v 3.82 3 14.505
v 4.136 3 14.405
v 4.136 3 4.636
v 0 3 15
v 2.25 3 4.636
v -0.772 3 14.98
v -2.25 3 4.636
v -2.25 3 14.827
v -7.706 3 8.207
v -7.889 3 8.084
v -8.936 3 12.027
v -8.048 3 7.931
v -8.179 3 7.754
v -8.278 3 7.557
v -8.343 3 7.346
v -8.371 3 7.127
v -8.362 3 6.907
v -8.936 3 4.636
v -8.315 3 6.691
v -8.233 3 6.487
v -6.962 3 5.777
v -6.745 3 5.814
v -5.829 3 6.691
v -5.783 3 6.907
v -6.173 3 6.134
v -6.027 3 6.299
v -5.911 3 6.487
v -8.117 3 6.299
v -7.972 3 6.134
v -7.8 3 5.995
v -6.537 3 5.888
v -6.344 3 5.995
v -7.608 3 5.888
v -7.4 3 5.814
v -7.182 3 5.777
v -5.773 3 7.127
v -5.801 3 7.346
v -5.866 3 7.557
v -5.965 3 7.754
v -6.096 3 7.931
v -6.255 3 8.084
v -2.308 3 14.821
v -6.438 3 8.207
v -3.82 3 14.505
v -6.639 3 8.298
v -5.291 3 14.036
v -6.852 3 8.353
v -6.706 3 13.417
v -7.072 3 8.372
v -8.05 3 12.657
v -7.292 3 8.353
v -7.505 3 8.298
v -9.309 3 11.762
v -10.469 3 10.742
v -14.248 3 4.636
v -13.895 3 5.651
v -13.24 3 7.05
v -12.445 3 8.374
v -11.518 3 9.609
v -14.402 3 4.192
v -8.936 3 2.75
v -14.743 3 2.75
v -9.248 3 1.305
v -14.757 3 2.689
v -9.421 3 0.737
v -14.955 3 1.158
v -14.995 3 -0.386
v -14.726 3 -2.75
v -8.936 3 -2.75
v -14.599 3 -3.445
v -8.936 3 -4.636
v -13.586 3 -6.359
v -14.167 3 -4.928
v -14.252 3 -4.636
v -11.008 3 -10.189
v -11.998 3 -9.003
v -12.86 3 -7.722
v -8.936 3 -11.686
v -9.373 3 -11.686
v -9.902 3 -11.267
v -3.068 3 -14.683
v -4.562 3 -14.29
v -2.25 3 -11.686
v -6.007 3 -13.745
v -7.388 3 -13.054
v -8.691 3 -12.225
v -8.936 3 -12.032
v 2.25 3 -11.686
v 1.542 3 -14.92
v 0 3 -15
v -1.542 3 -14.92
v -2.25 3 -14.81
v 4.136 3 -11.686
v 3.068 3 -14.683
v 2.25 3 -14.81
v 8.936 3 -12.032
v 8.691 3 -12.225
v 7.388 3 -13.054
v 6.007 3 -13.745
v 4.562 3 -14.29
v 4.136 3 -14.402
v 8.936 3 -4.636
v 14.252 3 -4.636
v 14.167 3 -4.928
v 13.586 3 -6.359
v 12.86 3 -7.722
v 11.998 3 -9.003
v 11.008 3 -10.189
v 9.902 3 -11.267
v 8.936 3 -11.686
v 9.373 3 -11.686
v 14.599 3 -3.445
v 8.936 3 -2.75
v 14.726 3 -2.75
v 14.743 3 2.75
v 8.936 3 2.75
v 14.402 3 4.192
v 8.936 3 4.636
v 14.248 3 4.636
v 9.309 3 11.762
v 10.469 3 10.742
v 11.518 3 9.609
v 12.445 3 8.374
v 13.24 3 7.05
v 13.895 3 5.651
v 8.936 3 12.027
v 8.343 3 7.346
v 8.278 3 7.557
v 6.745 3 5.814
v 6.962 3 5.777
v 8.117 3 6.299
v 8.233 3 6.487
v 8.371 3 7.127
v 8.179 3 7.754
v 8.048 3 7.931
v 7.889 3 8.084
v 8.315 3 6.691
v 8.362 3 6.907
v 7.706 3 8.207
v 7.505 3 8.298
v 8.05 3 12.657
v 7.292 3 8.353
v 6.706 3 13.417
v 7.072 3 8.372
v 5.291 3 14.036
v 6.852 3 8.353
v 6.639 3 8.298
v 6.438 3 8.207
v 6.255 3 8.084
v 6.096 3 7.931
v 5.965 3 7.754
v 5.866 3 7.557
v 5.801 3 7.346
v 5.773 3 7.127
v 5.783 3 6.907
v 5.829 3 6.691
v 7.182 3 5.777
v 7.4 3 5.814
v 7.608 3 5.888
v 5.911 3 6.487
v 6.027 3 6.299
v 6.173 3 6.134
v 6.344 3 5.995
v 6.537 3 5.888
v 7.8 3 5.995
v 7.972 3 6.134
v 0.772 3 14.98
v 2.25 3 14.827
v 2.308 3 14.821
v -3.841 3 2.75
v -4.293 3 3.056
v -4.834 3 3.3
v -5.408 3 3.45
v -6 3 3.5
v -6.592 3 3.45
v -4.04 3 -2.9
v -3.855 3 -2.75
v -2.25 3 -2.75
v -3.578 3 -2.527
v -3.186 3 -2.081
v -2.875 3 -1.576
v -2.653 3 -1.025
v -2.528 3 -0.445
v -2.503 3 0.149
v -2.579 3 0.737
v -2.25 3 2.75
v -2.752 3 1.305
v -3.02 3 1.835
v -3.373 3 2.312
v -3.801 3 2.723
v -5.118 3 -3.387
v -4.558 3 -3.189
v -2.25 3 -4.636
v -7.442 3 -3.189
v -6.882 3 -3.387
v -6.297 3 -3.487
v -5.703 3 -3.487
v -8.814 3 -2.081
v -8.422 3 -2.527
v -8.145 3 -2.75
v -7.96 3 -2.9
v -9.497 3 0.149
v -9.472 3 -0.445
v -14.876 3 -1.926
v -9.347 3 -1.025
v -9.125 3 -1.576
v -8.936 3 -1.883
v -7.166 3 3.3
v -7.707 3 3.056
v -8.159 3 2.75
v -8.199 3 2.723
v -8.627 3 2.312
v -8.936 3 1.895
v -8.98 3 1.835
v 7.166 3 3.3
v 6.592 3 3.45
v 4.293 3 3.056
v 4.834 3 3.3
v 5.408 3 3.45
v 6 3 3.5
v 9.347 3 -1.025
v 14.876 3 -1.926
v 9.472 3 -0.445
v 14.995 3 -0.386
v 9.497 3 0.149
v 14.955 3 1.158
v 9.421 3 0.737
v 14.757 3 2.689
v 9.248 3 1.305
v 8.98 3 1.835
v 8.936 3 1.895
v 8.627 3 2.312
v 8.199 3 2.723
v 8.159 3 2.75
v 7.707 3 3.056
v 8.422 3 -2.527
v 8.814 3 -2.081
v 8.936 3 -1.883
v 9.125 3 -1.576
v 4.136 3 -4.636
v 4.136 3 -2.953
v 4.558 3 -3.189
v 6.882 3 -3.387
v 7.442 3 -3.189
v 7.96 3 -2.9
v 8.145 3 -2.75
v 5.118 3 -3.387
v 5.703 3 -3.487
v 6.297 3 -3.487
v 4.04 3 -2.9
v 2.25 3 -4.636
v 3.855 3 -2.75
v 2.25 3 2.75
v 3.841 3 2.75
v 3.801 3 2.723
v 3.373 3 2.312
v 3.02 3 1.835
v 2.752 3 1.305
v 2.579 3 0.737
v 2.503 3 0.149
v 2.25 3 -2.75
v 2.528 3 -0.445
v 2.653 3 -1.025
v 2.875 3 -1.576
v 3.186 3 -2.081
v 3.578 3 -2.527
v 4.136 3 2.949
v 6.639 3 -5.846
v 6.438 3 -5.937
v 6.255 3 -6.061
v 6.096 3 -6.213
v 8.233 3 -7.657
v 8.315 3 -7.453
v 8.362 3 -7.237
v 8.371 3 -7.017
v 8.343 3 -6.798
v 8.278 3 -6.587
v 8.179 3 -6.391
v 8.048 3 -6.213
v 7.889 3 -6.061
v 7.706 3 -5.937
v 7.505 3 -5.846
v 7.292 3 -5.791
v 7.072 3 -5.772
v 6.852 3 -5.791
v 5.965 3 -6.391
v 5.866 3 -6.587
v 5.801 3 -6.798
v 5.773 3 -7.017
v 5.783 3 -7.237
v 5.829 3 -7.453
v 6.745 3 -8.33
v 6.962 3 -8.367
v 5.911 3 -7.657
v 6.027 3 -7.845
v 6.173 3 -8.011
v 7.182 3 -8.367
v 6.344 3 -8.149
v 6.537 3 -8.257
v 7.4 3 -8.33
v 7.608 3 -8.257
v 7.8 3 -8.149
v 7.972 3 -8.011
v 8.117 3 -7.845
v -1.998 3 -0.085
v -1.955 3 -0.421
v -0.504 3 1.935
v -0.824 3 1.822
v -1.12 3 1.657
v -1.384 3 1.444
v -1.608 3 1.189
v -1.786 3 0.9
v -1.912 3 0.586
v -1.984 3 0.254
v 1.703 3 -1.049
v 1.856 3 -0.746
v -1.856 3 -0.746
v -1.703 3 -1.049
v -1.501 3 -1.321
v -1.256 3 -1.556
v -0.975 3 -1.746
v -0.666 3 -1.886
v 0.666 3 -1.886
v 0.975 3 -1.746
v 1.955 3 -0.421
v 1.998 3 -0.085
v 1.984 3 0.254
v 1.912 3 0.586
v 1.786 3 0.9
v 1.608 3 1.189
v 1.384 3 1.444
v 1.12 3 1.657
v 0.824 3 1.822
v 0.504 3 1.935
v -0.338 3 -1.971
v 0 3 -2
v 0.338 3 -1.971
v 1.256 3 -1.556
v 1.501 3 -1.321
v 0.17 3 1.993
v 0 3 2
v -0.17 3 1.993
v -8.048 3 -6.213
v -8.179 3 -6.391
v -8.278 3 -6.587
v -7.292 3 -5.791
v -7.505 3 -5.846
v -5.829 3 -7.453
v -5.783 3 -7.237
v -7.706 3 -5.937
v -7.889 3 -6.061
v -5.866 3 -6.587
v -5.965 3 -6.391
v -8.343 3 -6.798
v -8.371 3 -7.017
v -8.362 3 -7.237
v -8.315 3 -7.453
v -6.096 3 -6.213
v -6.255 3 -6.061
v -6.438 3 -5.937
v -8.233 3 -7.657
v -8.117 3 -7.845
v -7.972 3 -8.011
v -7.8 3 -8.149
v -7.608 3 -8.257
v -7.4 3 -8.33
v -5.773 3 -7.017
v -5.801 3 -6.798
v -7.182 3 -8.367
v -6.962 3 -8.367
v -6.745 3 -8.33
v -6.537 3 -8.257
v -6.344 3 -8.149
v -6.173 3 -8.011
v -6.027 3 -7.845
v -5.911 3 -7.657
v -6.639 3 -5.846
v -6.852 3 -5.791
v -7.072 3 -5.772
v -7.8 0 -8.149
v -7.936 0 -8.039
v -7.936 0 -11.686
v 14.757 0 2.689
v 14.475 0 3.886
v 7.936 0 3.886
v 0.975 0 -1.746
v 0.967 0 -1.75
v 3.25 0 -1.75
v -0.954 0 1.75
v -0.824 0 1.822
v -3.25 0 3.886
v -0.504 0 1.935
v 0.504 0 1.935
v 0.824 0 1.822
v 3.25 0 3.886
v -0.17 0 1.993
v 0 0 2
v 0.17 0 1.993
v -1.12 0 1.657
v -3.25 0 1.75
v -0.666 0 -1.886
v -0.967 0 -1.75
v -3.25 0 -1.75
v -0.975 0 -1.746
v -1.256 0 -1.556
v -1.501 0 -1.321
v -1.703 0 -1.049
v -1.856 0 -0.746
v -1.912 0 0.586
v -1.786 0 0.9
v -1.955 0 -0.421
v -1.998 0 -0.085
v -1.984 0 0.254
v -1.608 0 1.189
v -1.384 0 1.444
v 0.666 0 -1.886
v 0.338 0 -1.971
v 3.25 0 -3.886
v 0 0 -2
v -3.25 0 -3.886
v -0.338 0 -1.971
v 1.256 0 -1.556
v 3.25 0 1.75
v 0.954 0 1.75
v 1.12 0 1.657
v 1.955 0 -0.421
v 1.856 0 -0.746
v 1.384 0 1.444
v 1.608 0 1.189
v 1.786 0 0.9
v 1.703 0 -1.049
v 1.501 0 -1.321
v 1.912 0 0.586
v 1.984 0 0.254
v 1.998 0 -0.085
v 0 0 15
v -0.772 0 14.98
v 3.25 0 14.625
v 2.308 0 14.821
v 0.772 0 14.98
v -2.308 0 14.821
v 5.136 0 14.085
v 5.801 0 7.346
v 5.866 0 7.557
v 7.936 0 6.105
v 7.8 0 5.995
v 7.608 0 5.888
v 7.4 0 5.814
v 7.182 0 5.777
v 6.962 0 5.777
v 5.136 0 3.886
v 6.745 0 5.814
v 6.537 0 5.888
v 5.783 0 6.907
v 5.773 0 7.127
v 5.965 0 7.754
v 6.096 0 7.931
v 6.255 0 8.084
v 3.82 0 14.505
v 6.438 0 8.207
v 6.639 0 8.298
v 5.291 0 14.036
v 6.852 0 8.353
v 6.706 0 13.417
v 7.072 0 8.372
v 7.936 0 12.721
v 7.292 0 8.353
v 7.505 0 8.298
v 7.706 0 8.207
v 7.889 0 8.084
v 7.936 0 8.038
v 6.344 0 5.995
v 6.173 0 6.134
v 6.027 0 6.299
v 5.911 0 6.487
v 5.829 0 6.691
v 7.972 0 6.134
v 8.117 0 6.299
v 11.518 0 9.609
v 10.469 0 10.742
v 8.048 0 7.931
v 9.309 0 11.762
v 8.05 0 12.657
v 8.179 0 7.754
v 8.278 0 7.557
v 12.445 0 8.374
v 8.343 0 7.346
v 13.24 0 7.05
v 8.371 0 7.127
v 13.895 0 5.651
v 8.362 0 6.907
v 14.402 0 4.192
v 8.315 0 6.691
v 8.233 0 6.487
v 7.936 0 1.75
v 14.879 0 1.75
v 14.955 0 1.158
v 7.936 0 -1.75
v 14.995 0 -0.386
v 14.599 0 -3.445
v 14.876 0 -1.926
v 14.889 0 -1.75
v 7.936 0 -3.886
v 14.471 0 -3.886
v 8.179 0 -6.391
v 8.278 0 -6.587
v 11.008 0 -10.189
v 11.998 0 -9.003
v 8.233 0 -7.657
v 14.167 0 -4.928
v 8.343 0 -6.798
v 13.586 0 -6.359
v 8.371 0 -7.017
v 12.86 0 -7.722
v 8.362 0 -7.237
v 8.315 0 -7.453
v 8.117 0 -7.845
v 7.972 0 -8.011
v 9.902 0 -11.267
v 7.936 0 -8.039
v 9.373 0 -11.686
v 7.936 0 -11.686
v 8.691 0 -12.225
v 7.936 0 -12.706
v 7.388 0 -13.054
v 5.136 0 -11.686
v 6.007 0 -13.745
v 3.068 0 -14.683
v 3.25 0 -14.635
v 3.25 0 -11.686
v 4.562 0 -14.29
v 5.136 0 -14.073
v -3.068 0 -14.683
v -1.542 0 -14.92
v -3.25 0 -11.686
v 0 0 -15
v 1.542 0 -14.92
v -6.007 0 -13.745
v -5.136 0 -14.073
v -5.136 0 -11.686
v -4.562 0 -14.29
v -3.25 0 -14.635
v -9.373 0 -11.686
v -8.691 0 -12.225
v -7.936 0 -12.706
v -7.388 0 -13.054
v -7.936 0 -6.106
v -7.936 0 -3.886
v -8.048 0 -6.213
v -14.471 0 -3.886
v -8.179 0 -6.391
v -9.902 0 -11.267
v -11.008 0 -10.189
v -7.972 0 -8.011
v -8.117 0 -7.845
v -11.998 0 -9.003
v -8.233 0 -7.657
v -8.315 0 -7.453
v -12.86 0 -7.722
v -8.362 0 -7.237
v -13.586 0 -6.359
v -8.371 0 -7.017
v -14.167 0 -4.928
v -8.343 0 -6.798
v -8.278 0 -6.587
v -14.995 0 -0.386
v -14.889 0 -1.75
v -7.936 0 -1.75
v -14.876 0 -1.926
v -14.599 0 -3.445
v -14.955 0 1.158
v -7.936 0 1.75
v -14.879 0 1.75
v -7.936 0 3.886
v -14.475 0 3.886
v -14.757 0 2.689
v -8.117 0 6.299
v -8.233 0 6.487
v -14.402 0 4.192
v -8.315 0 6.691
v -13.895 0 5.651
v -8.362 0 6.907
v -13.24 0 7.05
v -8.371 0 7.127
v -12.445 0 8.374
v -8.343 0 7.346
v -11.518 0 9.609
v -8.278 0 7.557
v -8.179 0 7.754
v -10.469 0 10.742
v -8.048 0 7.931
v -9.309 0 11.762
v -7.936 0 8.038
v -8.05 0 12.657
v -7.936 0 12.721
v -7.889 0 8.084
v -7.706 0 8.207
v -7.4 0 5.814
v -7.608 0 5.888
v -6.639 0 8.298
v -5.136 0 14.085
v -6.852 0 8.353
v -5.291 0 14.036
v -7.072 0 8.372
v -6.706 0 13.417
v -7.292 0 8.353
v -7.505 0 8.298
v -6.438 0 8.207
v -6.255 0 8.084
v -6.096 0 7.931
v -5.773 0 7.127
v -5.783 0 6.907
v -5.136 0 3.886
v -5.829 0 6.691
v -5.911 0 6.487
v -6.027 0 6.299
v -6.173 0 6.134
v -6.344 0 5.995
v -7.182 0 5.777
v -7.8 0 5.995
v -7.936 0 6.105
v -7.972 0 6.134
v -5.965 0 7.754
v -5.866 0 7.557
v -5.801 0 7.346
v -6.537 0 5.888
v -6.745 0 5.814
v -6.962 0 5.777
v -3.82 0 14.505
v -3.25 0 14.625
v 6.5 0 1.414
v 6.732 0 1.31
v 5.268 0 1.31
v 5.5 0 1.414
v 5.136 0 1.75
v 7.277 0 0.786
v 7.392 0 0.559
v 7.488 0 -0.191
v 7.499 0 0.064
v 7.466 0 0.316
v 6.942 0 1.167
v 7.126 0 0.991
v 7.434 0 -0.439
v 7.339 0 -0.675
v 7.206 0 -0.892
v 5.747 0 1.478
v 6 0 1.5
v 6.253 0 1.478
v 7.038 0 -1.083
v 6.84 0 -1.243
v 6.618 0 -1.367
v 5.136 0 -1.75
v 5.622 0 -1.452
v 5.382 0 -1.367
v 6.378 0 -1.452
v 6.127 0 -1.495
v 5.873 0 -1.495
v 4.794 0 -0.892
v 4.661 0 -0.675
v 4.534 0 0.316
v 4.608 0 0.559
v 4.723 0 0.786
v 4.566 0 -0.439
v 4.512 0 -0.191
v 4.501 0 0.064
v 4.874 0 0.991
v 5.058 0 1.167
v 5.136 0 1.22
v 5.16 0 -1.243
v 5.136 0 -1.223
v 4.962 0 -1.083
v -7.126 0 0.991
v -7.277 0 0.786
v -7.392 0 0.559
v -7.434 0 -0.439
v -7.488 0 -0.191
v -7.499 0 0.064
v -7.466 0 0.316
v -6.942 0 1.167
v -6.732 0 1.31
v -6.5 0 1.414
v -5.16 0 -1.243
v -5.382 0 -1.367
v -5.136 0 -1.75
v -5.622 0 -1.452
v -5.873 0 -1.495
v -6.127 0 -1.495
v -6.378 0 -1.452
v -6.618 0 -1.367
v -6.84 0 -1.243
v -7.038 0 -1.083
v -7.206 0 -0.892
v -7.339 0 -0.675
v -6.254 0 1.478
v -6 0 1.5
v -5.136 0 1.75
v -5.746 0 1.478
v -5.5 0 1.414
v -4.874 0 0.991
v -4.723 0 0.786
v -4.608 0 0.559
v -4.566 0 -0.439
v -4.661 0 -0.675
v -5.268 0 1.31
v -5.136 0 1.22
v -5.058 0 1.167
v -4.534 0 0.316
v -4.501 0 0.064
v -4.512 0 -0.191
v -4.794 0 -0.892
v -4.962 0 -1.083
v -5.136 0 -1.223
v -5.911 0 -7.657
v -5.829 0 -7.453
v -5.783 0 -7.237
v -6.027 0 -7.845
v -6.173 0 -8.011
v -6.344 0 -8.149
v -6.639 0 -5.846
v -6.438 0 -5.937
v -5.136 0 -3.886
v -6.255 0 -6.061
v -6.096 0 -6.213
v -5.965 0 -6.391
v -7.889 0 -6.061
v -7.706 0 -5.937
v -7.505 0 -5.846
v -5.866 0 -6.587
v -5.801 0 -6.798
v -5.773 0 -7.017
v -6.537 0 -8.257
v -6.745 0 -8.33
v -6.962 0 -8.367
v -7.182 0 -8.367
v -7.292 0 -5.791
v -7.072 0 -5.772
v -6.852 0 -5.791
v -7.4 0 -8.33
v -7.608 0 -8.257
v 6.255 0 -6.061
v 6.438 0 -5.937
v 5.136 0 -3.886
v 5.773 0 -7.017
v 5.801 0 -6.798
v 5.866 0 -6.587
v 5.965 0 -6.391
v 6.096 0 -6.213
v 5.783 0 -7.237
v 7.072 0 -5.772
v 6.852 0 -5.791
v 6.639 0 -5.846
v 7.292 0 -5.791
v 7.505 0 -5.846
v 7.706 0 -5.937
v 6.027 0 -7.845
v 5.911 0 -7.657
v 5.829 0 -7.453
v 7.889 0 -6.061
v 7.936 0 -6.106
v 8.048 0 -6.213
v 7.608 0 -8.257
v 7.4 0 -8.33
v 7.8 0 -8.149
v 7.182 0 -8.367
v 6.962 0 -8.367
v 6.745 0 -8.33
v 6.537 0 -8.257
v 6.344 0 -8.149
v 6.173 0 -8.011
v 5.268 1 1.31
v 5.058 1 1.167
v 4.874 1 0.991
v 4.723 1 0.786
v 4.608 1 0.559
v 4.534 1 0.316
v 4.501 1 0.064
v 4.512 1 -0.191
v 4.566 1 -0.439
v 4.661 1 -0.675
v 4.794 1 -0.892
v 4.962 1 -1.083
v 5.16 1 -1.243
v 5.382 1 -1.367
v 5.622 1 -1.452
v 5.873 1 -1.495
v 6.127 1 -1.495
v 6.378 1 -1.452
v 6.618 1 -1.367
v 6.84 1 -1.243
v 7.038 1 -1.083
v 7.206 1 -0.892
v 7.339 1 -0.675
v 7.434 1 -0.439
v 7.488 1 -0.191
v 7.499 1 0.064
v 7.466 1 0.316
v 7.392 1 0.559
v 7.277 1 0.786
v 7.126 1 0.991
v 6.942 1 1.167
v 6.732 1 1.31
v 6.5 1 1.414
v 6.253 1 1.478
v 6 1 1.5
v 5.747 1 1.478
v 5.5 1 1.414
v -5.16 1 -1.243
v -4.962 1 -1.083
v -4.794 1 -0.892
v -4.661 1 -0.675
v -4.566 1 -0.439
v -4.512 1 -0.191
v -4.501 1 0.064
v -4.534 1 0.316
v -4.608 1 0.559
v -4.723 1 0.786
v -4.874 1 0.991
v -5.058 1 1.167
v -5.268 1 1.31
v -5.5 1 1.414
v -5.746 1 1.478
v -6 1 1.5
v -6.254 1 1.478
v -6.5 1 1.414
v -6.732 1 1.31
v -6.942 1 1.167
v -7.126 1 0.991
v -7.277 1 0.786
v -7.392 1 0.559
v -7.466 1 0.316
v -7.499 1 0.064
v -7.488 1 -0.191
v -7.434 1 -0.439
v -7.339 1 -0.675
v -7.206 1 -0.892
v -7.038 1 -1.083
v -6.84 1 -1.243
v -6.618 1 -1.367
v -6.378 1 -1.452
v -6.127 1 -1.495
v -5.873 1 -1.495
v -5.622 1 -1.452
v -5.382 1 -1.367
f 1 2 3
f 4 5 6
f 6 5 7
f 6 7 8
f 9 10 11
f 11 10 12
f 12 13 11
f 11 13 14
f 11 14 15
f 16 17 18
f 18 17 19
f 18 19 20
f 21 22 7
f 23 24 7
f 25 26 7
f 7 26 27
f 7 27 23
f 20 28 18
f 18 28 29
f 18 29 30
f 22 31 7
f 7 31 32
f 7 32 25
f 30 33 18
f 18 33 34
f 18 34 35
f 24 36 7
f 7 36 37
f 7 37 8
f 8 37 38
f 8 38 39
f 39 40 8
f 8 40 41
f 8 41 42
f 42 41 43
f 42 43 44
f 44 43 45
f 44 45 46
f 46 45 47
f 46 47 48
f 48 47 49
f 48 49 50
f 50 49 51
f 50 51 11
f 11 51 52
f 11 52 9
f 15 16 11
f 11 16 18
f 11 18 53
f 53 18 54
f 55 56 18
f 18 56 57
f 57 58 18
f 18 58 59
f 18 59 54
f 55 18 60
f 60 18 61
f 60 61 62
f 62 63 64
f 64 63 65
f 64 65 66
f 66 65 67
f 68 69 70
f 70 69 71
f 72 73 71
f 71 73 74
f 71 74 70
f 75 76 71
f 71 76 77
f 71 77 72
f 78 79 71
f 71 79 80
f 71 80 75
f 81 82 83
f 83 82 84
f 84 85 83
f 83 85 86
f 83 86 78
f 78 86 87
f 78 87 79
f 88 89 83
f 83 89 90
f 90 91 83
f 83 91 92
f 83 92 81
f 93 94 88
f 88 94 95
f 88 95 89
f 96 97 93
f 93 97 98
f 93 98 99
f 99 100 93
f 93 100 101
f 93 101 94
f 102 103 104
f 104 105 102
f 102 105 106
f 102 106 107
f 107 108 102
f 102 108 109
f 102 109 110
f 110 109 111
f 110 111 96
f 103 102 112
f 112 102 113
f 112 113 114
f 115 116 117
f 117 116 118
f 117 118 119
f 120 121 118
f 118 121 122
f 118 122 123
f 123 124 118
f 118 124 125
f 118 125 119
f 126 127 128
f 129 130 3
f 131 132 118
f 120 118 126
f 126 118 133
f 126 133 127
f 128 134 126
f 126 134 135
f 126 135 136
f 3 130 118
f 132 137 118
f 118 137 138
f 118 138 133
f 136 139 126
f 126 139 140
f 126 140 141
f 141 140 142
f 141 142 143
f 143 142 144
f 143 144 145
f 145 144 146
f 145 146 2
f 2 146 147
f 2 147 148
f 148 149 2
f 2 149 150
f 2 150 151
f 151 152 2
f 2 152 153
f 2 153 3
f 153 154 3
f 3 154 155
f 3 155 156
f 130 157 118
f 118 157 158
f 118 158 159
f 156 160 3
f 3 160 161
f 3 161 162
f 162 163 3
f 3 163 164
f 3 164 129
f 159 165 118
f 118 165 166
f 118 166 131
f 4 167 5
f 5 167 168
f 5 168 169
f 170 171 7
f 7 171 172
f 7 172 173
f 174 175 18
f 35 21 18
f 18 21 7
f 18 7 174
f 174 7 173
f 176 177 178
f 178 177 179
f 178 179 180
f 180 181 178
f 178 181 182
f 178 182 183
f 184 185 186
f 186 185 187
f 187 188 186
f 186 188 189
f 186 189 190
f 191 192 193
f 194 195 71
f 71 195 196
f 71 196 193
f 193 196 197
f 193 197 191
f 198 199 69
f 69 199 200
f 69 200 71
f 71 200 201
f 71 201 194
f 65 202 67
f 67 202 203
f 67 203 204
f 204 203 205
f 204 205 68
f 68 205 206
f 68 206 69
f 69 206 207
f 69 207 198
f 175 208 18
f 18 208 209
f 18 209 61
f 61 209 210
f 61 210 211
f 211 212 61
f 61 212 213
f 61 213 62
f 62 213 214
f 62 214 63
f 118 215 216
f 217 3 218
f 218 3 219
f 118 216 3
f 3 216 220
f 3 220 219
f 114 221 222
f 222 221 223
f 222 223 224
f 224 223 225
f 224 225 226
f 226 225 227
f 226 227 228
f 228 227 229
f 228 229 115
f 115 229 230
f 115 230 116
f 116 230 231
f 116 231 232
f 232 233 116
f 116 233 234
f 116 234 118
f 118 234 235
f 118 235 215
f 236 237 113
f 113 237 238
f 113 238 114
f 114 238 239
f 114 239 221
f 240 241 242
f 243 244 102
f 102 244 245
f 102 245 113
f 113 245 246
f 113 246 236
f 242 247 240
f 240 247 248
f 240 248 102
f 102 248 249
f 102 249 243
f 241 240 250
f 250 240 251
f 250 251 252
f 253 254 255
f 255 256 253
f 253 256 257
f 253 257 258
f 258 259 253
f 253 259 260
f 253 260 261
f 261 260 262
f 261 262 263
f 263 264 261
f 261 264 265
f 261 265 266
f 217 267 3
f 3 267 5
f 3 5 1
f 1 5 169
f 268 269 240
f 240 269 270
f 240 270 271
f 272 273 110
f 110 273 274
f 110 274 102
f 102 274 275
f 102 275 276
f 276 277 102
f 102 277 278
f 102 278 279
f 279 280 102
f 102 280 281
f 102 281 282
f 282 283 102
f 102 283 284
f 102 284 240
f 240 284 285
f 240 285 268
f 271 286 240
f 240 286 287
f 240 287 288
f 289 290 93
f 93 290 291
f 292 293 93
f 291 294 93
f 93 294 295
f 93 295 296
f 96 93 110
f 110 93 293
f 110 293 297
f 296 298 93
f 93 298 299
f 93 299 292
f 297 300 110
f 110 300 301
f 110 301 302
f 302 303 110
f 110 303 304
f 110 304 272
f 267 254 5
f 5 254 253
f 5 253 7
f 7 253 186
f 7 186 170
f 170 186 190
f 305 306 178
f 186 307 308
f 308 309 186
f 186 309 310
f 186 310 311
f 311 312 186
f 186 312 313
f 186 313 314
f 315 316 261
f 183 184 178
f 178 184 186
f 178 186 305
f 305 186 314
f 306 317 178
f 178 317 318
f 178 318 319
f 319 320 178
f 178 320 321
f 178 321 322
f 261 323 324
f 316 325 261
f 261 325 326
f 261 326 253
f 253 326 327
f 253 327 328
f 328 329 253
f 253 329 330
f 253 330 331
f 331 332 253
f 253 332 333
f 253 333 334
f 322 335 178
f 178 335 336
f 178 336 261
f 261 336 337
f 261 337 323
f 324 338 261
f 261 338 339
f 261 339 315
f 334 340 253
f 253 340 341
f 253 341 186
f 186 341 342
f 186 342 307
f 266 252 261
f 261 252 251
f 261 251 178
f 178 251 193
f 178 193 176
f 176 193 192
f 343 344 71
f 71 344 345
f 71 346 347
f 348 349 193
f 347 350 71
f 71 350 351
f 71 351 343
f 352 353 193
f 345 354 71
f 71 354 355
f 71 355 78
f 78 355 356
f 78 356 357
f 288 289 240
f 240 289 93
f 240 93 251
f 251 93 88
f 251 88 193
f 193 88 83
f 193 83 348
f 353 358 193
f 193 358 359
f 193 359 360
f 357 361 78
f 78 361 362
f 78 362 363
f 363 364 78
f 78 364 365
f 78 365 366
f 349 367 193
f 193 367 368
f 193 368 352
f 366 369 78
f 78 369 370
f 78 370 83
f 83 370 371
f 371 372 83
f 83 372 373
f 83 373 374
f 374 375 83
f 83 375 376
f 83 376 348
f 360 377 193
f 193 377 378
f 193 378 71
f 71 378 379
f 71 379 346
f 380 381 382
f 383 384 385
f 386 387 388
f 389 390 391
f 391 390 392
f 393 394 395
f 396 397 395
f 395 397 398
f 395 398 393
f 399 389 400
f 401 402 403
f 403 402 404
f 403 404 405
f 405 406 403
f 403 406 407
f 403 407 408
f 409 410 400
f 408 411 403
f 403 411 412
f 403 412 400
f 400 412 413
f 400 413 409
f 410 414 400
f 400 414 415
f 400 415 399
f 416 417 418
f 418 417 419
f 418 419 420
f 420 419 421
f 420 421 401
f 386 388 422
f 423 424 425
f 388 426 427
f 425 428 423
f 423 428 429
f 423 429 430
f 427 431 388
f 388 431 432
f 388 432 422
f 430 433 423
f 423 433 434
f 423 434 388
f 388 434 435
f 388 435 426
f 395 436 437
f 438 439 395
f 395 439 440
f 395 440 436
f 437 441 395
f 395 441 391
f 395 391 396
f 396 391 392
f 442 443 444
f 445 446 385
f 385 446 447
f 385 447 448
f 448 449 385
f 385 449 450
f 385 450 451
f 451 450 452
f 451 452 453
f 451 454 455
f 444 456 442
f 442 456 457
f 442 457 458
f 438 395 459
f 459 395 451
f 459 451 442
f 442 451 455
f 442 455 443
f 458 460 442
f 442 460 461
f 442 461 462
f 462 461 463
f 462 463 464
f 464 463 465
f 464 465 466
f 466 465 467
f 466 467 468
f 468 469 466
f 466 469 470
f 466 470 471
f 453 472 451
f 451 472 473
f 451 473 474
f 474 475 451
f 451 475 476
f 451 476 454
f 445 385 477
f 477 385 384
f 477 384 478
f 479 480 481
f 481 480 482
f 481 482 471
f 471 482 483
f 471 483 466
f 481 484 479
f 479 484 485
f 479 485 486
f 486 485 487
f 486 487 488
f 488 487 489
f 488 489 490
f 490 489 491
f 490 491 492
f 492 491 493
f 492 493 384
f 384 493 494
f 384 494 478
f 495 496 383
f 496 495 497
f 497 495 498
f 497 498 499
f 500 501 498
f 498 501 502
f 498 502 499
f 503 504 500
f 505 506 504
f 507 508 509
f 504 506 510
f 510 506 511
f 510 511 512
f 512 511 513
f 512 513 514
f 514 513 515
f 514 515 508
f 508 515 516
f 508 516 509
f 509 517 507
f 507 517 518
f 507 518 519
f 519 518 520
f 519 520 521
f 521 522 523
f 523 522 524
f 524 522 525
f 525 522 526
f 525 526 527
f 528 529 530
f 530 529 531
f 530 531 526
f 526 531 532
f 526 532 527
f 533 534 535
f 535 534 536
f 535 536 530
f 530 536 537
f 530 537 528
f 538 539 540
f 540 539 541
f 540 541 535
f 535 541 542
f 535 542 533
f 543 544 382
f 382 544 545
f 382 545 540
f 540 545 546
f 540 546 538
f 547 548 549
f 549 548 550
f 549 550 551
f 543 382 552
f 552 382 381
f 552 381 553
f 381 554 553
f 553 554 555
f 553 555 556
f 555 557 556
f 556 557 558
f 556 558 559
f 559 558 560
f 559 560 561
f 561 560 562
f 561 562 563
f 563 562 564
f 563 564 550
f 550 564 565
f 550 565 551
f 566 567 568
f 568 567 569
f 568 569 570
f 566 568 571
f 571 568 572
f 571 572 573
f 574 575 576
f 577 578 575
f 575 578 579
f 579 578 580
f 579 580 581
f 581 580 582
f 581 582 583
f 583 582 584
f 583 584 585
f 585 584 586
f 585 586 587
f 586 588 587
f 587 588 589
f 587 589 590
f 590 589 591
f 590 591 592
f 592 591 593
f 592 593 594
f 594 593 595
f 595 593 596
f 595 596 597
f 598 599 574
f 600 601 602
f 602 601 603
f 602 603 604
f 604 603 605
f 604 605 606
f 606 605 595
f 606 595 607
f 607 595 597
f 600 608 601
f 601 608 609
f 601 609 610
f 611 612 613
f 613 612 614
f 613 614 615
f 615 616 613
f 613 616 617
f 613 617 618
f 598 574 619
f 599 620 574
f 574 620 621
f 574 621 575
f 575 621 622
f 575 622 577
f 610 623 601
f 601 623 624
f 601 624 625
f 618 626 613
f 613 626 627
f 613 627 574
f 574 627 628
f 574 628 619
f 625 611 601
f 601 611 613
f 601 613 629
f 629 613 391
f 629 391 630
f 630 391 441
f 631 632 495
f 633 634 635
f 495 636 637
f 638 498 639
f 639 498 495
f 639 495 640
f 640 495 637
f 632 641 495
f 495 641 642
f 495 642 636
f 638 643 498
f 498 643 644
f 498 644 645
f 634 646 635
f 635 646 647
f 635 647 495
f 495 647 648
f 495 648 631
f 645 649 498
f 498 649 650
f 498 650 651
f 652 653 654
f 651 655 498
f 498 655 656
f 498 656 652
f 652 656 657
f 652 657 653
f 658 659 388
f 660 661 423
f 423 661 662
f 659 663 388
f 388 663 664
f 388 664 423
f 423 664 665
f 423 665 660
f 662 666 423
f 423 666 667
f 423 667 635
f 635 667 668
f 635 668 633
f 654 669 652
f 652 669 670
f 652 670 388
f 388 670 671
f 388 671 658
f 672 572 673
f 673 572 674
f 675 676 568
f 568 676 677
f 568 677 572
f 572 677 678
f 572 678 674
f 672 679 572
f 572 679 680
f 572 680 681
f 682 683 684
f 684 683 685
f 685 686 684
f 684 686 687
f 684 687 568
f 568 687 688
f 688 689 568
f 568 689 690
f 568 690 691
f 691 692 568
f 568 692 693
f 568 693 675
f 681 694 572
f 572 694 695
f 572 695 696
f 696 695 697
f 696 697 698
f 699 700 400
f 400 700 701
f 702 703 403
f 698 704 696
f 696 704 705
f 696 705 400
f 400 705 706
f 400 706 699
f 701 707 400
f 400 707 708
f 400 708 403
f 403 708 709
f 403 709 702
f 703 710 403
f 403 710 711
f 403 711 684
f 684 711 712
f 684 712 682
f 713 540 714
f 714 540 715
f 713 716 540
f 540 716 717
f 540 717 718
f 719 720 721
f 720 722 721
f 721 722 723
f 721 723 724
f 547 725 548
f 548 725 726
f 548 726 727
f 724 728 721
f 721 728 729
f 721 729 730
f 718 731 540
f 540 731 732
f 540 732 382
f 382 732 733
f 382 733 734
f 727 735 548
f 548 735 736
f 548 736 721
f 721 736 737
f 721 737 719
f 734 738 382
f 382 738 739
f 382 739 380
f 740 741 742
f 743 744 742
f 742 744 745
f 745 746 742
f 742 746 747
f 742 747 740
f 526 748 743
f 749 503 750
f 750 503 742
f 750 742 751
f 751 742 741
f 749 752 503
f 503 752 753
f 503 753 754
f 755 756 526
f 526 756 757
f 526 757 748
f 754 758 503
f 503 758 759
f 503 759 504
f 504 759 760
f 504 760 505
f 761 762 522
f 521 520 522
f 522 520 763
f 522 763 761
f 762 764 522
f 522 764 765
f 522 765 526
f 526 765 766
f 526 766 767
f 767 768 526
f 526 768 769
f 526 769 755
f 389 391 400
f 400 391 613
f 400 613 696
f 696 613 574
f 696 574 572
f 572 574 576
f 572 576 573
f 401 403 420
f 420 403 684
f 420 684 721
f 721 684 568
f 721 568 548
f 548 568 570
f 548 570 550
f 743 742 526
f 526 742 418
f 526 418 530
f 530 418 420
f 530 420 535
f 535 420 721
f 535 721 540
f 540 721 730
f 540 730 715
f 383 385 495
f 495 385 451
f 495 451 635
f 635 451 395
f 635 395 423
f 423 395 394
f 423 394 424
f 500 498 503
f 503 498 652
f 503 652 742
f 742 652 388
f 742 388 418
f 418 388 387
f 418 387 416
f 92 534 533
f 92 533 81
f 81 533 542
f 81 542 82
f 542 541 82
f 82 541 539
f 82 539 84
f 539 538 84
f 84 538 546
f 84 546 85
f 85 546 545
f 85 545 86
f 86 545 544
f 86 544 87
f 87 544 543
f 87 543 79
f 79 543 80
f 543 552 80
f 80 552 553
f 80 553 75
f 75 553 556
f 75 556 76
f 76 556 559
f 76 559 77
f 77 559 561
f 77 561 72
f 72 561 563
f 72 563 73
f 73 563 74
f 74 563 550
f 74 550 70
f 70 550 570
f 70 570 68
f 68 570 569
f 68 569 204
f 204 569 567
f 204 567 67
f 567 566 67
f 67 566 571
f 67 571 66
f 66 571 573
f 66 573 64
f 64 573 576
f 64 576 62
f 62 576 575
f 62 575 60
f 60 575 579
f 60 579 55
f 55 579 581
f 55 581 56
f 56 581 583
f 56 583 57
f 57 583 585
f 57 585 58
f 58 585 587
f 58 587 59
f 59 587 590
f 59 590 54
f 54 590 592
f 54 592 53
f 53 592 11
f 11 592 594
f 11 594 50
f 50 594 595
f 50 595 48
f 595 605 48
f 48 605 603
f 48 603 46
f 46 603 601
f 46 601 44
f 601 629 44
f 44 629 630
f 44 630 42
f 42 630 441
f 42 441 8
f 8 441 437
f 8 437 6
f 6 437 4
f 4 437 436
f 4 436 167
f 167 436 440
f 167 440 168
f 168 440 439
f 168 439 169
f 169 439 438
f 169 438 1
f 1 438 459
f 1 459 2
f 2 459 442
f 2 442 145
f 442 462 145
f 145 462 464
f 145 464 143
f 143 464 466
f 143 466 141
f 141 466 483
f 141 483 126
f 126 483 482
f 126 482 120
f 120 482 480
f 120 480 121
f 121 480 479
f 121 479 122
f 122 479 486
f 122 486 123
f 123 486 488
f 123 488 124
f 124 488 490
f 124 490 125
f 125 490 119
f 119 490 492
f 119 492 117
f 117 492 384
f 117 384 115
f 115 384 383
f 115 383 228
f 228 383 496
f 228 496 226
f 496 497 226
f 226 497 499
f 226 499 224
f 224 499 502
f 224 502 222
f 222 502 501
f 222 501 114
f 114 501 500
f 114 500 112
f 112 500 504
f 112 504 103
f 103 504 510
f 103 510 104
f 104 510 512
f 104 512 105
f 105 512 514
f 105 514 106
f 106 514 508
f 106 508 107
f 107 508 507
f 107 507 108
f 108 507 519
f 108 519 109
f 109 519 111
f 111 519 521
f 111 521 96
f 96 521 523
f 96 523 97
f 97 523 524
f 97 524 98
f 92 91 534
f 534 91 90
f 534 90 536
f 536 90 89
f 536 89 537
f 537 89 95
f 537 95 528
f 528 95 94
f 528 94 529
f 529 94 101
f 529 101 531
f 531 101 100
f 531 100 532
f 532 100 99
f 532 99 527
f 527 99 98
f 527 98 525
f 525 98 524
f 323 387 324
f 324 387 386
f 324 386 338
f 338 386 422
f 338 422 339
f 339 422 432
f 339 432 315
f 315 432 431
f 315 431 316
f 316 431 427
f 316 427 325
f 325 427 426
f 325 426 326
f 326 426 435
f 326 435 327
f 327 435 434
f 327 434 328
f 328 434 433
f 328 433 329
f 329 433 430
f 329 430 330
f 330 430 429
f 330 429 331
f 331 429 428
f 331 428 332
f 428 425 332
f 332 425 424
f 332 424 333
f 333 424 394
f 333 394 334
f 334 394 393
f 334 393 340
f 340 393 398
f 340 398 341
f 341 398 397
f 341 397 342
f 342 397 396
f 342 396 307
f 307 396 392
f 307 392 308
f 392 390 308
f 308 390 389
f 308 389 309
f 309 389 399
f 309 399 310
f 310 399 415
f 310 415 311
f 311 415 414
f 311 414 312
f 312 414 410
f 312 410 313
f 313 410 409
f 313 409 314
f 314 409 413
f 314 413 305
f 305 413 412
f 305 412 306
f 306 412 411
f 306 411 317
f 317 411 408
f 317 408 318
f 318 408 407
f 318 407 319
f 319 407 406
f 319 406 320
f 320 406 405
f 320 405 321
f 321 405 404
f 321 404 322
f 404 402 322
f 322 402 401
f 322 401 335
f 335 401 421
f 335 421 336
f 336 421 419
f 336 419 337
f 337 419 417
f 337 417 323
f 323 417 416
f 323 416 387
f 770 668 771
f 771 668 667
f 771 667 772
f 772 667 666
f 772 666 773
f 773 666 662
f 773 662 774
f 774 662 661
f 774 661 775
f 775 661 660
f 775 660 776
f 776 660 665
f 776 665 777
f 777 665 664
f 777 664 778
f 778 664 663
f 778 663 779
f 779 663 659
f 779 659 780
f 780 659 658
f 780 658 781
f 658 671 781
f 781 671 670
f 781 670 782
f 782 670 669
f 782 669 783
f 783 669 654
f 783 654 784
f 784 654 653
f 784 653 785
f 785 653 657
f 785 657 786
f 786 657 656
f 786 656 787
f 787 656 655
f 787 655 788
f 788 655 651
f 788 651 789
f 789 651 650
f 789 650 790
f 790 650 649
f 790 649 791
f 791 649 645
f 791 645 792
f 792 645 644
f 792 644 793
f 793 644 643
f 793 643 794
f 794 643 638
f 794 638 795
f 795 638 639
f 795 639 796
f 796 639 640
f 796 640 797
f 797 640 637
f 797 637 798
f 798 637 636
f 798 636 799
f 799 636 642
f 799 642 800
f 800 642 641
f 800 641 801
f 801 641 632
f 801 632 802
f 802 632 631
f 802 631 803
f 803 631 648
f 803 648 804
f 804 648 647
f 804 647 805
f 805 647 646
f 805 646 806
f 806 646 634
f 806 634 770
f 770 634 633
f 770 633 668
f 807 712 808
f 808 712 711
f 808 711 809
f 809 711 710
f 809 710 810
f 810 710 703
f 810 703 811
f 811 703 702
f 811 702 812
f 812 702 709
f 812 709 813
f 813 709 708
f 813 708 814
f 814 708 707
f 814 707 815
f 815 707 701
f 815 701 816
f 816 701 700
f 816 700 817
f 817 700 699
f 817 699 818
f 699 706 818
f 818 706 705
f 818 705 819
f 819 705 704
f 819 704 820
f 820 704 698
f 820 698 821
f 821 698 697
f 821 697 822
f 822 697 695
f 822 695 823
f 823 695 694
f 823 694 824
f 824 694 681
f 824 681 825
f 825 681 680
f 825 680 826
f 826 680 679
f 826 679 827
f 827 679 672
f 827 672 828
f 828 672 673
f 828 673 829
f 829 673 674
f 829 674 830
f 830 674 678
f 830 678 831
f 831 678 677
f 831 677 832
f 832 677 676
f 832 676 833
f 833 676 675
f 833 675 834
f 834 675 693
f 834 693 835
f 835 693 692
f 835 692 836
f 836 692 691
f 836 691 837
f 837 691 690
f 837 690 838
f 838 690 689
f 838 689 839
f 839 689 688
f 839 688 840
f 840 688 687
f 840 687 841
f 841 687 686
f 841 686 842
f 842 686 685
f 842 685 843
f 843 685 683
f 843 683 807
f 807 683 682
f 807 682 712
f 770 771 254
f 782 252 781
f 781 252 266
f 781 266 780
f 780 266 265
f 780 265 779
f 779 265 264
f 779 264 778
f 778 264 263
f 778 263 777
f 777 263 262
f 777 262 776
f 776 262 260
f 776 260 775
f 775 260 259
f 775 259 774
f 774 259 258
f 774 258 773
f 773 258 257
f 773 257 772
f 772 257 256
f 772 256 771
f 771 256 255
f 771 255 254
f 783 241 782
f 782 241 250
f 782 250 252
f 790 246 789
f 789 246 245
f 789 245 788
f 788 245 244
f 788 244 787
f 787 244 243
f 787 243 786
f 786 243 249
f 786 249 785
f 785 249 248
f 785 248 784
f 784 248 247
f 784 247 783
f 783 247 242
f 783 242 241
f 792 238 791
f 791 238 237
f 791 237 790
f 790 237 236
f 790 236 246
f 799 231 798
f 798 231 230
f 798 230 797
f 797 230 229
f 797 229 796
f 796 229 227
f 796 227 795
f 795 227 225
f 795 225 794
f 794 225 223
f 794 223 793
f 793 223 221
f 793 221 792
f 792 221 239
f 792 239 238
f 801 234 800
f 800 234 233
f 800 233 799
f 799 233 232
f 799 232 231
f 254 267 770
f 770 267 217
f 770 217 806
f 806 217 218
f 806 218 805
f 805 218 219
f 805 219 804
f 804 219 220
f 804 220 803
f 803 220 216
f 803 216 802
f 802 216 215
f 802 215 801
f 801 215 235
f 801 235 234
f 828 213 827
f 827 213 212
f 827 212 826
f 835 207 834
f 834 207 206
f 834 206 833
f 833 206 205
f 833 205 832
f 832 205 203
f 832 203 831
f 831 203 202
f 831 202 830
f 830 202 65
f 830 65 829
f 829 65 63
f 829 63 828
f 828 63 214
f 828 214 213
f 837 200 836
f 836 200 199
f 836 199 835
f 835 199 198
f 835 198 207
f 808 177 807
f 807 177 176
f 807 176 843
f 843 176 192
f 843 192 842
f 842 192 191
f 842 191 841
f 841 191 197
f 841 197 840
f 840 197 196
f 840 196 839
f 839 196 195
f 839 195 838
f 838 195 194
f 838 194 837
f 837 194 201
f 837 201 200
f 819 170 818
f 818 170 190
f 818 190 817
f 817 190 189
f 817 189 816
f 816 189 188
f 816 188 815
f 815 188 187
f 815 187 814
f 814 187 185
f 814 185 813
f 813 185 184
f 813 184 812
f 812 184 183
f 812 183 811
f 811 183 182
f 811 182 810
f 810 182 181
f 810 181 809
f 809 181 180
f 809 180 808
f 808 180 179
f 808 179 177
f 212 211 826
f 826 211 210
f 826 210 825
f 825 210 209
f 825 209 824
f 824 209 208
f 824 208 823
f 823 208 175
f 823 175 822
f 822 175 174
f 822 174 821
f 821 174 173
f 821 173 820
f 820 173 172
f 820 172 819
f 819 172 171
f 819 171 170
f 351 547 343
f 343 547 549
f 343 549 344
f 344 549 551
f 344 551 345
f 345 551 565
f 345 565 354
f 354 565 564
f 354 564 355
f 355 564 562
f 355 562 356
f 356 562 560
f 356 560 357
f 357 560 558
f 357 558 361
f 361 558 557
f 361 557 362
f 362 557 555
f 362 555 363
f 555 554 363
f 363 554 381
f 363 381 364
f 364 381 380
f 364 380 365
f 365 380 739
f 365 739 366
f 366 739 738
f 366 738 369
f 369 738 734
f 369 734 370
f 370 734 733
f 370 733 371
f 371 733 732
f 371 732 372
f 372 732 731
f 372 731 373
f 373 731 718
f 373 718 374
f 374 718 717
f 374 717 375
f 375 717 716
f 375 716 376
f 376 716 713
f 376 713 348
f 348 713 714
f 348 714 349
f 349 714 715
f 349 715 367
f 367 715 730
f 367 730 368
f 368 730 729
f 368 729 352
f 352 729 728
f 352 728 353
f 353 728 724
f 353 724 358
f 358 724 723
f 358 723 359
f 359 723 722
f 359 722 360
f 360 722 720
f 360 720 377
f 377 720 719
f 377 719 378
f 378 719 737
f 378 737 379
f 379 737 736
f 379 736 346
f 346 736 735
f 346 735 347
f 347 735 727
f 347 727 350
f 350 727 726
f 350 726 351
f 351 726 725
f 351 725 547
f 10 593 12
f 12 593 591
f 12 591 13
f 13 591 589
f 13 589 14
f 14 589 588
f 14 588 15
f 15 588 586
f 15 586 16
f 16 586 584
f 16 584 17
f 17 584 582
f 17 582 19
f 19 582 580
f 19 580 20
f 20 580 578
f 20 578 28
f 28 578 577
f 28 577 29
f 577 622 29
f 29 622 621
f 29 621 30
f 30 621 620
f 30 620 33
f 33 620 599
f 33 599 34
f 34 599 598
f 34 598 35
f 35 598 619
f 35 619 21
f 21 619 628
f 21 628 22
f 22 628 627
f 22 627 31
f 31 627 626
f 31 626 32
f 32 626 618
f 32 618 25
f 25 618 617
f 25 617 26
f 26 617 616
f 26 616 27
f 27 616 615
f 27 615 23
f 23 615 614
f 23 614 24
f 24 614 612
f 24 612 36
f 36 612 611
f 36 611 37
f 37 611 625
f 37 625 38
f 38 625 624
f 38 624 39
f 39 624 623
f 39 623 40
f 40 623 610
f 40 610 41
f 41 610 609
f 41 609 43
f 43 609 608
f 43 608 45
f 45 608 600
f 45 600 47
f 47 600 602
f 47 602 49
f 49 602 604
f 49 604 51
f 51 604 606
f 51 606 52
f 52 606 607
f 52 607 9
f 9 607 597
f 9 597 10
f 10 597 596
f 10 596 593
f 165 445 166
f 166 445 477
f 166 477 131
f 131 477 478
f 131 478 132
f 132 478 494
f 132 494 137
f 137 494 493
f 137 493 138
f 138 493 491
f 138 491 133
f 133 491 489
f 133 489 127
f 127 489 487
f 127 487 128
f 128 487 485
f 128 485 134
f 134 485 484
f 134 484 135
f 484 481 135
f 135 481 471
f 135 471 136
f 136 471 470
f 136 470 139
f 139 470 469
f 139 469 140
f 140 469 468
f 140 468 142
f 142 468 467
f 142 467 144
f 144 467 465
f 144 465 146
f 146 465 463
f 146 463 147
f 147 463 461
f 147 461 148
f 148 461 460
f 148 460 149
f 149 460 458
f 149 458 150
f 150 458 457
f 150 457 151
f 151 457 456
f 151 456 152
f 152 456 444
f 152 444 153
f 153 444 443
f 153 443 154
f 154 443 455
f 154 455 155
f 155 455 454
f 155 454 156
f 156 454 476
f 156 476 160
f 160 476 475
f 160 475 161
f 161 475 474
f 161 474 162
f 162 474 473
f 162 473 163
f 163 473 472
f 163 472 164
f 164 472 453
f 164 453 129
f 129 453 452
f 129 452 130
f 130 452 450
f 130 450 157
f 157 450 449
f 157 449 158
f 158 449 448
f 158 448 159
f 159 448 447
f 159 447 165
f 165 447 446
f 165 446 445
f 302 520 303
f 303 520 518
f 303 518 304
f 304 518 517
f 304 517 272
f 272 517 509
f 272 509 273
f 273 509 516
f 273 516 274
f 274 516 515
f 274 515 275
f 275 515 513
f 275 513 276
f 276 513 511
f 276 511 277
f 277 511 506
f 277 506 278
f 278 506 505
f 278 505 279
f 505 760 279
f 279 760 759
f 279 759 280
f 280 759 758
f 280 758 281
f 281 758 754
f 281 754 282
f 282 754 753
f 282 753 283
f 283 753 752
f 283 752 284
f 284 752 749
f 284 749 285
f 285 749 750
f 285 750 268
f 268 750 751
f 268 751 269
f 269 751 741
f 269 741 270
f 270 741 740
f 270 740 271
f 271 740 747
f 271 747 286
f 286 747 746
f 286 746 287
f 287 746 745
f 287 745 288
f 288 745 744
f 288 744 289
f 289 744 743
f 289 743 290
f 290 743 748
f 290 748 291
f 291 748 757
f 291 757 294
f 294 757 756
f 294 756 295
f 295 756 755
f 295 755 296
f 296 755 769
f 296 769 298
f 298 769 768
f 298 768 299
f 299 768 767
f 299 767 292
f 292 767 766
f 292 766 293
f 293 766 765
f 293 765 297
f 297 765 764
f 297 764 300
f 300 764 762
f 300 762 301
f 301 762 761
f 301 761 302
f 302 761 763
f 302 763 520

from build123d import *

# Parameters (mm, degrees)
SKETCH1_R           = 15
SKETCH1_R_2         = 2
BOSS_EXTRUDE1_DEPTH = 3
SKETCH2_R           = 1.5
CUT_EXTRUDE1_DEPTH  = 3
CHAMFER1_SIZE       = 2
SKETCH3_R           = 1.3
CUT_EXTRUDE2_DEPTH  = 3


with BuildPart() as part:
    # Sketch1 → Boss-Extrude1 (new body)
    with BuildSketch(Plane(origin=(0, 0, 0), x_dir=(1, 0, 0), z_dir=(0, 1, 0))):
        with Locations(Location((0, 0, 0), (0, 0, 270))):
            Circle(SKETCH1_R)
        with Locations(Location((0, 0, 0), (0, 0, 270))):
            Circle(SKETCH1_R_2, mode=Mode.SUBTRACT)
    extrude(amount=BOSS_EXTRUDE1_DEPTH)

    # Sketch2 → Cut-Extrude1 (cut)
    with BuildSketch(Plane(origin=(0, 3, 0), x_dir=(1, 0, 0), z_dir=(0, 1, 0))):
        with Locations(Location((6, 0, 0), (0, 0, 270))):
            Circle(SKETCH2_R)
        with Locations(Location((-6, 0, 0), (0, 0, 270))):
            Circle(SKETCH2_R)
    extrude(amount=-CUT_EXTRUDE1_DEPTH, mode=Mode.SUBTRACT)

    # Chamfer1
    chamfer1_edges = [part.edges().sort_by_distance(p)[0] for p in [
        (6, 3, -1.5),
        (-6, 3, -1.5),
    ]]
    chamfer(chamfer1_edges, length=CHAMFER1_SIZE)

    # Sketch3 → Cut-Extrude2 (cut)
    with BuildSketch(Plane(origin=(0, 3, 0), x_dir=(1, 0, 0), z_dir=(0, 1, 0))):
        with Locations(Location((-7.072135785, 7.072135785, 0), (0, 0, 270))):
            Circle(SKETCH3_R)
        with Locations(Location((7.072135785, 7.072135785, 0), (0, 0, 270))):
            Circle(SKETCH3_R)
        with Locations(Location((7.072135785, -7.072135785, 0), (0, 0, 270))):
            Circle(SKETCH3_R)
        with Locations(Location((-7.072135785, -7.072135785, 0), (0, 0, 270))):
            Circle(SKETCH3_R)
    extrude(amount=-CUT_EXTRUDE2_DEPTH, mode=Mode.SUBTRACT)


solid = part.part
